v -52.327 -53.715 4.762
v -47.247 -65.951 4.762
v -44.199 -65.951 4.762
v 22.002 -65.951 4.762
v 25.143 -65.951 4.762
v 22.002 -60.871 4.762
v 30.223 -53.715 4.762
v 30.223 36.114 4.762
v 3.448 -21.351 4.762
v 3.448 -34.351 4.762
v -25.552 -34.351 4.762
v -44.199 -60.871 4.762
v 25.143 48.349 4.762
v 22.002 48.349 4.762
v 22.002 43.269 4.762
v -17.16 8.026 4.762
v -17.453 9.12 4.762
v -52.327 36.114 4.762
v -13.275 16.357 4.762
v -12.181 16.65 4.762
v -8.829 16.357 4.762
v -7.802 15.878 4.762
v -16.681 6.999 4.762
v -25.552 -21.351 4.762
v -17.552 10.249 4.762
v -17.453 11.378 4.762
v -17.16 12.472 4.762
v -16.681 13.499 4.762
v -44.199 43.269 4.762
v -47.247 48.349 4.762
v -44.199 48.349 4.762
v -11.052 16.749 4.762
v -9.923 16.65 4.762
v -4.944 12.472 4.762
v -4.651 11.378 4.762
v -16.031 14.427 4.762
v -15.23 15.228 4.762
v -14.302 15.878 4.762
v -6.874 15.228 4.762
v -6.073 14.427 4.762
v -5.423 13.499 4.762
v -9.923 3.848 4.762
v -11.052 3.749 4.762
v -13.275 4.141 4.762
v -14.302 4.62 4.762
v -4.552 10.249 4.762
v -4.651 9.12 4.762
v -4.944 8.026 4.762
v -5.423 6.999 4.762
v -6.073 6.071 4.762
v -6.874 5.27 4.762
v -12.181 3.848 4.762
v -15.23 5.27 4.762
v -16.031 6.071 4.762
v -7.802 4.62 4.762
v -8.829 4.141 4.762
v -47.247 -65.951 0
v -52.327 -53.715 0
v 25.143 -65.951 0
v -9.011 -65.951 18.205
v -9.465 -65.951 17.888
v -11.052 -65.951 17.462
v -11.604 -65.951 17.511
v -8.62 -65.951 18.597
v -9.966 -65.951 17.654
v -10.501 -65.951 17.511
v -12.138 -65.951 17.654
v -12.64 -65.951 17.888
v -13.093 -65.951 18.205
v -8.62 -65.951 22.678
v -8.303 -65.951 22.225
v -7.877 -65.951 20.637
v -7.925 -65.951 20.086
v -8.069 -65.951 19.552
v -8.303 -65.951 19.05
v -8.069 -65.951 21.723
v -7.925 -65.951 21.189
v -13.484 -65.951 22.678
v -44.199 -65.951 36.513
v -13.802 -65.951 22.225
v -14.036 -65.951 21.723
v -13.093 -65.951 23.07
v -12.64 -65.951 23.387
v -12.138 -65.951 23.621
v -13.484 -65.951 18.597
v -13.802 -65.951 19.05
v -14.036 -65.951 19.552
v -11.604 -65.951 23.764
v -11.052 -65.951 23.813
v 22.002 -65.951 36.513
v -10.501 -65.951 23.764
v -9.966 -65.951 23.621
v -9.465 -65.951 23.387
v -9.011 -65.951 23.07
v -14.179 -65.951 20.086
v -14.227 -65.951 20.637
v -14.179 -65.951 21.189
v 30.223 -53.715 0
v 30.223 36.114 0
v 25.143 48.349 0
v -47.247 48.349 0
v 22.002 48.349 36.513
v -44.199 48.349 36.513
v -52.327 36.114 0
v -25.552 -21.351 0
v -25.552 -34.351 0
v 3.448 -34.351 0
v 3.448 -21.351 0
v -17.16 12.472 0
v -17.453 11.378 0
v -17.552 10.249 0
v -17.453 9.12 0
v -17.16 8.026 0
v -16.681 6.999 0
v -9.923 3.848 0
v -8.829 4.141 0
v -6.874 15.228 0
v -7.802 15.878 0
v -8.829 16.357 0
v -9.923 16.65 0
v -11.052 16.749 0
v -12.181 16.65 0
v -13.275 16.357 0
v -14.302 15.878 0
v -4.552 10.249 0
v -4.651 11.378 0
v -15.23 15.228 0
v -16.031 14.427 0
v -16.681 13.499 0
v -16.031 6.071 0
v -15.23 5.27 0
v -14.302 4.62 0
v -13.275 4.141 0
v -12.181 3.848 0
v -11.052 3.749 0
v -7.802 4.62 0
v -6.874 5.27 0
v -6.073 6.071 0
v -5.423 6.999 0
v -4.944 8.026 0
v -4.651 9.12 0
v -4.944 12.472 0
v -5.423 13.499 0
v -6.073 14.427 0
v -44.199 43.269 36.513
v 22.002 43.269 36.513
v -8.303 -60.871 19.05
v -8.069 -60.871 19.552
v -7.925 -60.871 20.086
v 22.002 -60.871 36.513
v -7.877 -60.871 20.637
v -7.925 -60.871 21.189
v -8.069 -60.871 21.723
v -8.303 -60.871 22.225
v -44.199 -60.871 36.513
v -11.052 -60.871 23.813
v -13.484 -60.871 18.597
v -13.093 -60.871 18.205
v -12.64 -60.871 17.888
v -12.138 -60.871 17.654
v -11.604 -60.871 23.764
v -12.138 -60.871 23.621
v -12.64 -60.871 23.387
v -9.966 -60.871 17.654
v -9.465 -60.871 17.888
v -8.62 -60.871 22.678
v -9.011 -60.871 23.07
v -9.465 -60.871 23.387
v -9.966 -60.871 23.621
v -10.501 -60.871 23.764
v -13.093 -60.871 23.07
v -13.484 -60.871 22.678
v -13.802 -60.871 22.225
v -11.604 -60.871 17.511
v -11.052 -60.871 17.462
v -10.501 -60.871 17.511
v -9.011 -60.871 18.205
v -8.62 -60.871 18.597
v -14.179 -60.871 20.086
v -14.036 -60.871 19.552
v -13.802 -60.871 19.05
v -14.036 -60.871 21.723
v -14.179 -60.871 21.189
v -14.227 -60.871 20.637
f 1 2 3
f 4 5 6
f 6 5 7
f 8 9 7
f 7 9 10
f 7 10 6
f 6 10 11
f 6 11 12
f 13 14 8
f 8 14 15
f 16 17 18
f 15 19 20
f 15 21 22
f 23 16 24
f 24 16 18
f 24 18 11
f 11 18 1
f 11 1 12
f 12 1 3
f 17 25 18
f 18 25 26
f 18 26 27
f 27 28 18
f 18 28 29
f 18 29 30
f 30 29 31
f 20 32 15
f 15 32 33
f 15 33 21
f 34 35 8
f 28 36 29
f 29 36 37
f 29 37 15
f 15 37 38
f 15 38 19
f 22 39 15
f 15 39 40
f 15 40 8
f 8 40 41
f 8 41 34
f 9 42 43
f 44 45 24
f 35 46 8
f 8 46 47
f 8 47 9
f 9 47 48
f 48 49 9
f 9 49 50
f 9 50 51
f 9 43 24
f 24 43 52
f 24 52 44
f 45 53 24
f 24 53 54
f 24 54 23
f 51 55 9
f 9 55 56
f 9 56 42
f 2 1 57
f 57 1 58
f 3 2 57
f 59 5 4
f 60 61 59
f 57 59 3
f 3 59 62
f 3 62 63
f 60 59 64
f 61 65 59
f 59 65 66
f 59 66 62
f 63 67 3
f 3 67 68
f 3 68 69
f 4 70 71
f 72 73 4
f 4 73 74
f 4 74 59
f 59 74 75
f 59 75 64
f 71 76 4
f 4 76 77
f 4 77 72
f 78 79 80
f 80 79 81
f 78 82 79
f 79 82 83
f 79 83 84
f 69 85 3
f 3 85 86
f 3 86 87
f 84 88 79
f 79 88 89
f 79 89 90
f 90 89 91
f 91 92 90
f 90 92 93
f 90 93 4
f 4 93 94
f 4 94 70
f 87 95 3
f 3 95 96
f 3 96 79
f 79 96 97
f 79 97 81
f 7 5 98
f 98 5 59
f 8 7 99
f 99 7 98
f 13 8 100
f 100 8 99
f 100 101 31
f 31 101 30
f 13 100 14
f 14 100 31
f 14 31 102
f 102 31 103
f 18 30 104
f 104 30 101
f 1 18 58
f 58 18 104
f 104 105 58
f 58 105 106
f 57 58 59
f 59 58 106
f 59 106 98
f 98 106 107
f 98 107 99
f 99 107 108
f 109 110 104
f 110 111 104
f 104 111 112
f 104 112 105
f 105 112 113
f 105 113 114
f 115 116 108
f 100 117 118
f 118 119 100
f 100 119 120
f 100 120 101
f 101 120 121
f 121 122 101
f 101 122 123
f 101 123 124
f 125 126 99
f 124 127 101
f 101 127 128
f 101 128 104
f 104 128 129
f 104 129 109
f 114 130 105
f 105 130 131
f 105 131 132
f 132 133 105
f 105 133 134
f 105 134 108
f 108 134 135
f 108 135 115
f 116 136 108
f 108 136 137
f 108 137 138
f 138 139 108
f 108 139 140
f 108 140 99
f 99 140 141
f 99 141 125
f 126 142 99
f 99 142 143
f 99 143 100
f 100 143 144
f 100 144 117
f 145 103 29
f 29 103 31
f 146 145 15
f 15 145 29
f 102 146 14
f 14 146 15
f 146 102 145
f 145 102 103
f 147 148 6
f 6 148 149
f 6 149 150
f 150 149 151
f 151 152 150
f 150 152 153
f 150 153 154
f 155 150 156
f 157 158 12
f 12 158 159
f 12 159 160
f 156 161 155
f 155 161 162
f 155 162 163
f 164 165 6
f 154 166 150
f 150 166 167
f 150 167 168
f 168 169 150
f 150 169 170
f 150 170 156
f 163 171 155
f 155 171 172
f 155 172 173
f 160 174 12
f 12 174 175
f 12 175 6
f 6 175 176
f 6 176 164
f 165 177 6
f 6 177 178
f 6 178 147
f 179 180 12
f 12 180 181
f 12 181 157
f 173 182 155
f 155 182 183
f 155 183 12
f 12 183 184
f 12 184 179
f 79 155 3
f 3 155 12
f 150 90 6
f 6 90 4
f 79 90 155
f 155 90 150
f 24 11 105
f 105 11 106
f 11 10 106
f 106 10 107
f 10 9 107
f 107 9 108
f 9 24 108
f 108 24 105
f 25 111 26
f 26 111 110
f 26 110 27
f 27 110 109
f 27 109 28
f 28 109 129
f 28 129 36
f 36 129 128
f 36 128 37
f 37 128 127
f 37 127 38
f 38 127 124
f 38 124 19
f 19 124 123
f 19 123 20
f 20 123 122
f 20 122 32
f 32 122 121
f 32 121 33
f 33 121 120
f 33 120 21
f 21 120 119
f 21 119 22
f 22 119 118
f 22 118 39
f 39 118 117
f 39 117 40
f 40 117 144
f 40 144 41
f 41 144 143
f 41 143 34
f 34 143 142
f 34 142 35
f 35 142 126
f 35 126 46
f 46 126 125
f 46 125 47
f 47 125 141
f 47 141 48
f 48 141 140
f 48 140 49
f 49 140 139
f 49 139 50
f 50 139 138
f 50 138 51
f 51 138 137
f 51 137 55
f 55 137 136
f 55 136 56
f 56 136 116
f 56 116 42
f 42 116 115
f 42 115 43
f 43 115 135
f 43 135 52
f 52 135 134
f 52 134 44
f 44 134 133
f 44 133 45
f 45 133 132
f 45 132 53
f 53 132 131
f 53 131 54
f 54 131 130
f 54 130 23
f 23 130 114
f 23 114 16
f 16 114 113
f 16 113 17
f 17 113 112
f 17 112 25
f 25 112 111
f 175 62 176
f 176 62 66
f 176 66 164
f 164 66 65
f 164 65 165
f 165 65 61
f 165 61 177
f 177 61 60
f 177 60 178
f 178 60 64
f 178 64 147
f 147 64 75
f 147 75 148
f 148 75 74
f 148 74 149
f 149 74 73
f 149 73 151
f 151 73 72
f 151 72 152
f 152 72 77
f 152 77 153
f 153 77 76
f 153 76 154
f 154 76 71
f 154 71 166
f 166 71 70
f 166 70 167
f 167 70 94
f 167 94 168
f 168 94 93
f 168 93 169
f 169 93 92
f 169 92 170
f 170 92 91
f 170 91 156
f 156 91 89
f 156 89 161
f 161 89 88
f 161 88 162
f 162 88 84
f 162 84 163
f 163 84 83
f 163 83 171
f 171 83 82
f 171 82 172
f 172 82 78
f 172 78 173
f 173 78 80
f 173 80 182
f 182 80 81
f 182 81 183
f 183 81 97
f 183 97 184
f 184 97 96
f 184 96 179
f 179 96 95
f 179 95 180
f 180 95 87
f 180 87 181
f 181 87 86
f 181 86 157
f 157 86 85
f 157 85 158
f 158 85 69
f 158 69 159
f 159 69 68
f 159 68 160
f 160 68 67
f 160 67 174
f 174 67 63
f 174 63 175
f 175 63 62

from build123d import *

# Parameters (mm, degrees)
BOSS_EXTRUDE1_DEPTH = 4.7625
SKETCH3_W           = 66.200858932
SKETCH3_H           = 5.079818348
BOSS_EXTRUDE2_DEPTH = 31.75
SKETCH4_W           = 28.999942
SKETCH4_H           = 12.9999994
CUT_EXTRUDE1_DEPTH  = 4.7625
SKETCH5_R           = 6.4999997
CUT_EXTRUDE2_DEPTH  = 4.7625
SKETCH6_R           = 3.175
CUT_EXTRUDE3_DEPTH  = 7.3025


with BuildPart() as part:
    # Sketch1 → Boss-Extrude1 (new body)
    with BuildSketch(Plane.XY):
        Polygon((30.222809818, 36.11360466), (25.142809818, 48.349181892), (-47.247190182, 48.349181892), (-52.327190182, 36.11360466), (-52.327190182, -53.715240876), (-47.247190182, -65.950818108), (25.142809818, -65.950818108), (30.222809818, -53.715240876), align=None)
    extrude(amount=BOSS_EXTRUDE1_DEPTH)

    # Sketch3 → Boss-Extrude2 (add)
    with BuildSketch(Plane.XY.offset(4.7625)):
        with Locations((-11.098760716, 45.809272718)):
            Rectangle(SKETCH3_W, SKETCH3_H)
        with Locations((-11.098760716, -63.410908934)):
            Rectangle(SKETCH3_W, SKETCH3_H)
    extrude(amount=BOSS_EXTRUDE2_DEPTH)

    # Sketch4 → Cut-Extrude1 (cut)
    with BuildSketch(Plane(origin=(0, 0, 0), x_dir=(-1, 0, 0), z_dir=(0, 0, -1))):
        with Locations((11.052190182, -27.850818108)):
            Rectangle(SKETCH4_W, SKETCH4_H)
    extrude(amount=-CUT_EXTRUDE1_DEPTH, mode=Mode.SUBTRACT)

    # Sketch5 → Cut-Extrude2 (cut)
    with BuildSketch(Plane(origin=(0, 0, 0), x_dir=(-1, 0, 0), z_dir=(0, 0, -1))):
        with Locations((11.052190182, 10.249181892)):
            Circle(SKETCH5_R)
    extrude(amount=-CUT_EXTRUDE2_DEPTH, mode=Mode.SUBTRACT)

    # Sketch6 → Cut-Extrude3 (cut)
    with BuildSketch(Plane.XZ.offset(65.950818108)):
        with Locations((-11.052190182, 20.6375)):
            Circle(SKETCH6_R)
    extrude(amount=-CUT_EXTRUDE3_DEPTH, mode=Mode.SUBTRACT)


solid = part.part
